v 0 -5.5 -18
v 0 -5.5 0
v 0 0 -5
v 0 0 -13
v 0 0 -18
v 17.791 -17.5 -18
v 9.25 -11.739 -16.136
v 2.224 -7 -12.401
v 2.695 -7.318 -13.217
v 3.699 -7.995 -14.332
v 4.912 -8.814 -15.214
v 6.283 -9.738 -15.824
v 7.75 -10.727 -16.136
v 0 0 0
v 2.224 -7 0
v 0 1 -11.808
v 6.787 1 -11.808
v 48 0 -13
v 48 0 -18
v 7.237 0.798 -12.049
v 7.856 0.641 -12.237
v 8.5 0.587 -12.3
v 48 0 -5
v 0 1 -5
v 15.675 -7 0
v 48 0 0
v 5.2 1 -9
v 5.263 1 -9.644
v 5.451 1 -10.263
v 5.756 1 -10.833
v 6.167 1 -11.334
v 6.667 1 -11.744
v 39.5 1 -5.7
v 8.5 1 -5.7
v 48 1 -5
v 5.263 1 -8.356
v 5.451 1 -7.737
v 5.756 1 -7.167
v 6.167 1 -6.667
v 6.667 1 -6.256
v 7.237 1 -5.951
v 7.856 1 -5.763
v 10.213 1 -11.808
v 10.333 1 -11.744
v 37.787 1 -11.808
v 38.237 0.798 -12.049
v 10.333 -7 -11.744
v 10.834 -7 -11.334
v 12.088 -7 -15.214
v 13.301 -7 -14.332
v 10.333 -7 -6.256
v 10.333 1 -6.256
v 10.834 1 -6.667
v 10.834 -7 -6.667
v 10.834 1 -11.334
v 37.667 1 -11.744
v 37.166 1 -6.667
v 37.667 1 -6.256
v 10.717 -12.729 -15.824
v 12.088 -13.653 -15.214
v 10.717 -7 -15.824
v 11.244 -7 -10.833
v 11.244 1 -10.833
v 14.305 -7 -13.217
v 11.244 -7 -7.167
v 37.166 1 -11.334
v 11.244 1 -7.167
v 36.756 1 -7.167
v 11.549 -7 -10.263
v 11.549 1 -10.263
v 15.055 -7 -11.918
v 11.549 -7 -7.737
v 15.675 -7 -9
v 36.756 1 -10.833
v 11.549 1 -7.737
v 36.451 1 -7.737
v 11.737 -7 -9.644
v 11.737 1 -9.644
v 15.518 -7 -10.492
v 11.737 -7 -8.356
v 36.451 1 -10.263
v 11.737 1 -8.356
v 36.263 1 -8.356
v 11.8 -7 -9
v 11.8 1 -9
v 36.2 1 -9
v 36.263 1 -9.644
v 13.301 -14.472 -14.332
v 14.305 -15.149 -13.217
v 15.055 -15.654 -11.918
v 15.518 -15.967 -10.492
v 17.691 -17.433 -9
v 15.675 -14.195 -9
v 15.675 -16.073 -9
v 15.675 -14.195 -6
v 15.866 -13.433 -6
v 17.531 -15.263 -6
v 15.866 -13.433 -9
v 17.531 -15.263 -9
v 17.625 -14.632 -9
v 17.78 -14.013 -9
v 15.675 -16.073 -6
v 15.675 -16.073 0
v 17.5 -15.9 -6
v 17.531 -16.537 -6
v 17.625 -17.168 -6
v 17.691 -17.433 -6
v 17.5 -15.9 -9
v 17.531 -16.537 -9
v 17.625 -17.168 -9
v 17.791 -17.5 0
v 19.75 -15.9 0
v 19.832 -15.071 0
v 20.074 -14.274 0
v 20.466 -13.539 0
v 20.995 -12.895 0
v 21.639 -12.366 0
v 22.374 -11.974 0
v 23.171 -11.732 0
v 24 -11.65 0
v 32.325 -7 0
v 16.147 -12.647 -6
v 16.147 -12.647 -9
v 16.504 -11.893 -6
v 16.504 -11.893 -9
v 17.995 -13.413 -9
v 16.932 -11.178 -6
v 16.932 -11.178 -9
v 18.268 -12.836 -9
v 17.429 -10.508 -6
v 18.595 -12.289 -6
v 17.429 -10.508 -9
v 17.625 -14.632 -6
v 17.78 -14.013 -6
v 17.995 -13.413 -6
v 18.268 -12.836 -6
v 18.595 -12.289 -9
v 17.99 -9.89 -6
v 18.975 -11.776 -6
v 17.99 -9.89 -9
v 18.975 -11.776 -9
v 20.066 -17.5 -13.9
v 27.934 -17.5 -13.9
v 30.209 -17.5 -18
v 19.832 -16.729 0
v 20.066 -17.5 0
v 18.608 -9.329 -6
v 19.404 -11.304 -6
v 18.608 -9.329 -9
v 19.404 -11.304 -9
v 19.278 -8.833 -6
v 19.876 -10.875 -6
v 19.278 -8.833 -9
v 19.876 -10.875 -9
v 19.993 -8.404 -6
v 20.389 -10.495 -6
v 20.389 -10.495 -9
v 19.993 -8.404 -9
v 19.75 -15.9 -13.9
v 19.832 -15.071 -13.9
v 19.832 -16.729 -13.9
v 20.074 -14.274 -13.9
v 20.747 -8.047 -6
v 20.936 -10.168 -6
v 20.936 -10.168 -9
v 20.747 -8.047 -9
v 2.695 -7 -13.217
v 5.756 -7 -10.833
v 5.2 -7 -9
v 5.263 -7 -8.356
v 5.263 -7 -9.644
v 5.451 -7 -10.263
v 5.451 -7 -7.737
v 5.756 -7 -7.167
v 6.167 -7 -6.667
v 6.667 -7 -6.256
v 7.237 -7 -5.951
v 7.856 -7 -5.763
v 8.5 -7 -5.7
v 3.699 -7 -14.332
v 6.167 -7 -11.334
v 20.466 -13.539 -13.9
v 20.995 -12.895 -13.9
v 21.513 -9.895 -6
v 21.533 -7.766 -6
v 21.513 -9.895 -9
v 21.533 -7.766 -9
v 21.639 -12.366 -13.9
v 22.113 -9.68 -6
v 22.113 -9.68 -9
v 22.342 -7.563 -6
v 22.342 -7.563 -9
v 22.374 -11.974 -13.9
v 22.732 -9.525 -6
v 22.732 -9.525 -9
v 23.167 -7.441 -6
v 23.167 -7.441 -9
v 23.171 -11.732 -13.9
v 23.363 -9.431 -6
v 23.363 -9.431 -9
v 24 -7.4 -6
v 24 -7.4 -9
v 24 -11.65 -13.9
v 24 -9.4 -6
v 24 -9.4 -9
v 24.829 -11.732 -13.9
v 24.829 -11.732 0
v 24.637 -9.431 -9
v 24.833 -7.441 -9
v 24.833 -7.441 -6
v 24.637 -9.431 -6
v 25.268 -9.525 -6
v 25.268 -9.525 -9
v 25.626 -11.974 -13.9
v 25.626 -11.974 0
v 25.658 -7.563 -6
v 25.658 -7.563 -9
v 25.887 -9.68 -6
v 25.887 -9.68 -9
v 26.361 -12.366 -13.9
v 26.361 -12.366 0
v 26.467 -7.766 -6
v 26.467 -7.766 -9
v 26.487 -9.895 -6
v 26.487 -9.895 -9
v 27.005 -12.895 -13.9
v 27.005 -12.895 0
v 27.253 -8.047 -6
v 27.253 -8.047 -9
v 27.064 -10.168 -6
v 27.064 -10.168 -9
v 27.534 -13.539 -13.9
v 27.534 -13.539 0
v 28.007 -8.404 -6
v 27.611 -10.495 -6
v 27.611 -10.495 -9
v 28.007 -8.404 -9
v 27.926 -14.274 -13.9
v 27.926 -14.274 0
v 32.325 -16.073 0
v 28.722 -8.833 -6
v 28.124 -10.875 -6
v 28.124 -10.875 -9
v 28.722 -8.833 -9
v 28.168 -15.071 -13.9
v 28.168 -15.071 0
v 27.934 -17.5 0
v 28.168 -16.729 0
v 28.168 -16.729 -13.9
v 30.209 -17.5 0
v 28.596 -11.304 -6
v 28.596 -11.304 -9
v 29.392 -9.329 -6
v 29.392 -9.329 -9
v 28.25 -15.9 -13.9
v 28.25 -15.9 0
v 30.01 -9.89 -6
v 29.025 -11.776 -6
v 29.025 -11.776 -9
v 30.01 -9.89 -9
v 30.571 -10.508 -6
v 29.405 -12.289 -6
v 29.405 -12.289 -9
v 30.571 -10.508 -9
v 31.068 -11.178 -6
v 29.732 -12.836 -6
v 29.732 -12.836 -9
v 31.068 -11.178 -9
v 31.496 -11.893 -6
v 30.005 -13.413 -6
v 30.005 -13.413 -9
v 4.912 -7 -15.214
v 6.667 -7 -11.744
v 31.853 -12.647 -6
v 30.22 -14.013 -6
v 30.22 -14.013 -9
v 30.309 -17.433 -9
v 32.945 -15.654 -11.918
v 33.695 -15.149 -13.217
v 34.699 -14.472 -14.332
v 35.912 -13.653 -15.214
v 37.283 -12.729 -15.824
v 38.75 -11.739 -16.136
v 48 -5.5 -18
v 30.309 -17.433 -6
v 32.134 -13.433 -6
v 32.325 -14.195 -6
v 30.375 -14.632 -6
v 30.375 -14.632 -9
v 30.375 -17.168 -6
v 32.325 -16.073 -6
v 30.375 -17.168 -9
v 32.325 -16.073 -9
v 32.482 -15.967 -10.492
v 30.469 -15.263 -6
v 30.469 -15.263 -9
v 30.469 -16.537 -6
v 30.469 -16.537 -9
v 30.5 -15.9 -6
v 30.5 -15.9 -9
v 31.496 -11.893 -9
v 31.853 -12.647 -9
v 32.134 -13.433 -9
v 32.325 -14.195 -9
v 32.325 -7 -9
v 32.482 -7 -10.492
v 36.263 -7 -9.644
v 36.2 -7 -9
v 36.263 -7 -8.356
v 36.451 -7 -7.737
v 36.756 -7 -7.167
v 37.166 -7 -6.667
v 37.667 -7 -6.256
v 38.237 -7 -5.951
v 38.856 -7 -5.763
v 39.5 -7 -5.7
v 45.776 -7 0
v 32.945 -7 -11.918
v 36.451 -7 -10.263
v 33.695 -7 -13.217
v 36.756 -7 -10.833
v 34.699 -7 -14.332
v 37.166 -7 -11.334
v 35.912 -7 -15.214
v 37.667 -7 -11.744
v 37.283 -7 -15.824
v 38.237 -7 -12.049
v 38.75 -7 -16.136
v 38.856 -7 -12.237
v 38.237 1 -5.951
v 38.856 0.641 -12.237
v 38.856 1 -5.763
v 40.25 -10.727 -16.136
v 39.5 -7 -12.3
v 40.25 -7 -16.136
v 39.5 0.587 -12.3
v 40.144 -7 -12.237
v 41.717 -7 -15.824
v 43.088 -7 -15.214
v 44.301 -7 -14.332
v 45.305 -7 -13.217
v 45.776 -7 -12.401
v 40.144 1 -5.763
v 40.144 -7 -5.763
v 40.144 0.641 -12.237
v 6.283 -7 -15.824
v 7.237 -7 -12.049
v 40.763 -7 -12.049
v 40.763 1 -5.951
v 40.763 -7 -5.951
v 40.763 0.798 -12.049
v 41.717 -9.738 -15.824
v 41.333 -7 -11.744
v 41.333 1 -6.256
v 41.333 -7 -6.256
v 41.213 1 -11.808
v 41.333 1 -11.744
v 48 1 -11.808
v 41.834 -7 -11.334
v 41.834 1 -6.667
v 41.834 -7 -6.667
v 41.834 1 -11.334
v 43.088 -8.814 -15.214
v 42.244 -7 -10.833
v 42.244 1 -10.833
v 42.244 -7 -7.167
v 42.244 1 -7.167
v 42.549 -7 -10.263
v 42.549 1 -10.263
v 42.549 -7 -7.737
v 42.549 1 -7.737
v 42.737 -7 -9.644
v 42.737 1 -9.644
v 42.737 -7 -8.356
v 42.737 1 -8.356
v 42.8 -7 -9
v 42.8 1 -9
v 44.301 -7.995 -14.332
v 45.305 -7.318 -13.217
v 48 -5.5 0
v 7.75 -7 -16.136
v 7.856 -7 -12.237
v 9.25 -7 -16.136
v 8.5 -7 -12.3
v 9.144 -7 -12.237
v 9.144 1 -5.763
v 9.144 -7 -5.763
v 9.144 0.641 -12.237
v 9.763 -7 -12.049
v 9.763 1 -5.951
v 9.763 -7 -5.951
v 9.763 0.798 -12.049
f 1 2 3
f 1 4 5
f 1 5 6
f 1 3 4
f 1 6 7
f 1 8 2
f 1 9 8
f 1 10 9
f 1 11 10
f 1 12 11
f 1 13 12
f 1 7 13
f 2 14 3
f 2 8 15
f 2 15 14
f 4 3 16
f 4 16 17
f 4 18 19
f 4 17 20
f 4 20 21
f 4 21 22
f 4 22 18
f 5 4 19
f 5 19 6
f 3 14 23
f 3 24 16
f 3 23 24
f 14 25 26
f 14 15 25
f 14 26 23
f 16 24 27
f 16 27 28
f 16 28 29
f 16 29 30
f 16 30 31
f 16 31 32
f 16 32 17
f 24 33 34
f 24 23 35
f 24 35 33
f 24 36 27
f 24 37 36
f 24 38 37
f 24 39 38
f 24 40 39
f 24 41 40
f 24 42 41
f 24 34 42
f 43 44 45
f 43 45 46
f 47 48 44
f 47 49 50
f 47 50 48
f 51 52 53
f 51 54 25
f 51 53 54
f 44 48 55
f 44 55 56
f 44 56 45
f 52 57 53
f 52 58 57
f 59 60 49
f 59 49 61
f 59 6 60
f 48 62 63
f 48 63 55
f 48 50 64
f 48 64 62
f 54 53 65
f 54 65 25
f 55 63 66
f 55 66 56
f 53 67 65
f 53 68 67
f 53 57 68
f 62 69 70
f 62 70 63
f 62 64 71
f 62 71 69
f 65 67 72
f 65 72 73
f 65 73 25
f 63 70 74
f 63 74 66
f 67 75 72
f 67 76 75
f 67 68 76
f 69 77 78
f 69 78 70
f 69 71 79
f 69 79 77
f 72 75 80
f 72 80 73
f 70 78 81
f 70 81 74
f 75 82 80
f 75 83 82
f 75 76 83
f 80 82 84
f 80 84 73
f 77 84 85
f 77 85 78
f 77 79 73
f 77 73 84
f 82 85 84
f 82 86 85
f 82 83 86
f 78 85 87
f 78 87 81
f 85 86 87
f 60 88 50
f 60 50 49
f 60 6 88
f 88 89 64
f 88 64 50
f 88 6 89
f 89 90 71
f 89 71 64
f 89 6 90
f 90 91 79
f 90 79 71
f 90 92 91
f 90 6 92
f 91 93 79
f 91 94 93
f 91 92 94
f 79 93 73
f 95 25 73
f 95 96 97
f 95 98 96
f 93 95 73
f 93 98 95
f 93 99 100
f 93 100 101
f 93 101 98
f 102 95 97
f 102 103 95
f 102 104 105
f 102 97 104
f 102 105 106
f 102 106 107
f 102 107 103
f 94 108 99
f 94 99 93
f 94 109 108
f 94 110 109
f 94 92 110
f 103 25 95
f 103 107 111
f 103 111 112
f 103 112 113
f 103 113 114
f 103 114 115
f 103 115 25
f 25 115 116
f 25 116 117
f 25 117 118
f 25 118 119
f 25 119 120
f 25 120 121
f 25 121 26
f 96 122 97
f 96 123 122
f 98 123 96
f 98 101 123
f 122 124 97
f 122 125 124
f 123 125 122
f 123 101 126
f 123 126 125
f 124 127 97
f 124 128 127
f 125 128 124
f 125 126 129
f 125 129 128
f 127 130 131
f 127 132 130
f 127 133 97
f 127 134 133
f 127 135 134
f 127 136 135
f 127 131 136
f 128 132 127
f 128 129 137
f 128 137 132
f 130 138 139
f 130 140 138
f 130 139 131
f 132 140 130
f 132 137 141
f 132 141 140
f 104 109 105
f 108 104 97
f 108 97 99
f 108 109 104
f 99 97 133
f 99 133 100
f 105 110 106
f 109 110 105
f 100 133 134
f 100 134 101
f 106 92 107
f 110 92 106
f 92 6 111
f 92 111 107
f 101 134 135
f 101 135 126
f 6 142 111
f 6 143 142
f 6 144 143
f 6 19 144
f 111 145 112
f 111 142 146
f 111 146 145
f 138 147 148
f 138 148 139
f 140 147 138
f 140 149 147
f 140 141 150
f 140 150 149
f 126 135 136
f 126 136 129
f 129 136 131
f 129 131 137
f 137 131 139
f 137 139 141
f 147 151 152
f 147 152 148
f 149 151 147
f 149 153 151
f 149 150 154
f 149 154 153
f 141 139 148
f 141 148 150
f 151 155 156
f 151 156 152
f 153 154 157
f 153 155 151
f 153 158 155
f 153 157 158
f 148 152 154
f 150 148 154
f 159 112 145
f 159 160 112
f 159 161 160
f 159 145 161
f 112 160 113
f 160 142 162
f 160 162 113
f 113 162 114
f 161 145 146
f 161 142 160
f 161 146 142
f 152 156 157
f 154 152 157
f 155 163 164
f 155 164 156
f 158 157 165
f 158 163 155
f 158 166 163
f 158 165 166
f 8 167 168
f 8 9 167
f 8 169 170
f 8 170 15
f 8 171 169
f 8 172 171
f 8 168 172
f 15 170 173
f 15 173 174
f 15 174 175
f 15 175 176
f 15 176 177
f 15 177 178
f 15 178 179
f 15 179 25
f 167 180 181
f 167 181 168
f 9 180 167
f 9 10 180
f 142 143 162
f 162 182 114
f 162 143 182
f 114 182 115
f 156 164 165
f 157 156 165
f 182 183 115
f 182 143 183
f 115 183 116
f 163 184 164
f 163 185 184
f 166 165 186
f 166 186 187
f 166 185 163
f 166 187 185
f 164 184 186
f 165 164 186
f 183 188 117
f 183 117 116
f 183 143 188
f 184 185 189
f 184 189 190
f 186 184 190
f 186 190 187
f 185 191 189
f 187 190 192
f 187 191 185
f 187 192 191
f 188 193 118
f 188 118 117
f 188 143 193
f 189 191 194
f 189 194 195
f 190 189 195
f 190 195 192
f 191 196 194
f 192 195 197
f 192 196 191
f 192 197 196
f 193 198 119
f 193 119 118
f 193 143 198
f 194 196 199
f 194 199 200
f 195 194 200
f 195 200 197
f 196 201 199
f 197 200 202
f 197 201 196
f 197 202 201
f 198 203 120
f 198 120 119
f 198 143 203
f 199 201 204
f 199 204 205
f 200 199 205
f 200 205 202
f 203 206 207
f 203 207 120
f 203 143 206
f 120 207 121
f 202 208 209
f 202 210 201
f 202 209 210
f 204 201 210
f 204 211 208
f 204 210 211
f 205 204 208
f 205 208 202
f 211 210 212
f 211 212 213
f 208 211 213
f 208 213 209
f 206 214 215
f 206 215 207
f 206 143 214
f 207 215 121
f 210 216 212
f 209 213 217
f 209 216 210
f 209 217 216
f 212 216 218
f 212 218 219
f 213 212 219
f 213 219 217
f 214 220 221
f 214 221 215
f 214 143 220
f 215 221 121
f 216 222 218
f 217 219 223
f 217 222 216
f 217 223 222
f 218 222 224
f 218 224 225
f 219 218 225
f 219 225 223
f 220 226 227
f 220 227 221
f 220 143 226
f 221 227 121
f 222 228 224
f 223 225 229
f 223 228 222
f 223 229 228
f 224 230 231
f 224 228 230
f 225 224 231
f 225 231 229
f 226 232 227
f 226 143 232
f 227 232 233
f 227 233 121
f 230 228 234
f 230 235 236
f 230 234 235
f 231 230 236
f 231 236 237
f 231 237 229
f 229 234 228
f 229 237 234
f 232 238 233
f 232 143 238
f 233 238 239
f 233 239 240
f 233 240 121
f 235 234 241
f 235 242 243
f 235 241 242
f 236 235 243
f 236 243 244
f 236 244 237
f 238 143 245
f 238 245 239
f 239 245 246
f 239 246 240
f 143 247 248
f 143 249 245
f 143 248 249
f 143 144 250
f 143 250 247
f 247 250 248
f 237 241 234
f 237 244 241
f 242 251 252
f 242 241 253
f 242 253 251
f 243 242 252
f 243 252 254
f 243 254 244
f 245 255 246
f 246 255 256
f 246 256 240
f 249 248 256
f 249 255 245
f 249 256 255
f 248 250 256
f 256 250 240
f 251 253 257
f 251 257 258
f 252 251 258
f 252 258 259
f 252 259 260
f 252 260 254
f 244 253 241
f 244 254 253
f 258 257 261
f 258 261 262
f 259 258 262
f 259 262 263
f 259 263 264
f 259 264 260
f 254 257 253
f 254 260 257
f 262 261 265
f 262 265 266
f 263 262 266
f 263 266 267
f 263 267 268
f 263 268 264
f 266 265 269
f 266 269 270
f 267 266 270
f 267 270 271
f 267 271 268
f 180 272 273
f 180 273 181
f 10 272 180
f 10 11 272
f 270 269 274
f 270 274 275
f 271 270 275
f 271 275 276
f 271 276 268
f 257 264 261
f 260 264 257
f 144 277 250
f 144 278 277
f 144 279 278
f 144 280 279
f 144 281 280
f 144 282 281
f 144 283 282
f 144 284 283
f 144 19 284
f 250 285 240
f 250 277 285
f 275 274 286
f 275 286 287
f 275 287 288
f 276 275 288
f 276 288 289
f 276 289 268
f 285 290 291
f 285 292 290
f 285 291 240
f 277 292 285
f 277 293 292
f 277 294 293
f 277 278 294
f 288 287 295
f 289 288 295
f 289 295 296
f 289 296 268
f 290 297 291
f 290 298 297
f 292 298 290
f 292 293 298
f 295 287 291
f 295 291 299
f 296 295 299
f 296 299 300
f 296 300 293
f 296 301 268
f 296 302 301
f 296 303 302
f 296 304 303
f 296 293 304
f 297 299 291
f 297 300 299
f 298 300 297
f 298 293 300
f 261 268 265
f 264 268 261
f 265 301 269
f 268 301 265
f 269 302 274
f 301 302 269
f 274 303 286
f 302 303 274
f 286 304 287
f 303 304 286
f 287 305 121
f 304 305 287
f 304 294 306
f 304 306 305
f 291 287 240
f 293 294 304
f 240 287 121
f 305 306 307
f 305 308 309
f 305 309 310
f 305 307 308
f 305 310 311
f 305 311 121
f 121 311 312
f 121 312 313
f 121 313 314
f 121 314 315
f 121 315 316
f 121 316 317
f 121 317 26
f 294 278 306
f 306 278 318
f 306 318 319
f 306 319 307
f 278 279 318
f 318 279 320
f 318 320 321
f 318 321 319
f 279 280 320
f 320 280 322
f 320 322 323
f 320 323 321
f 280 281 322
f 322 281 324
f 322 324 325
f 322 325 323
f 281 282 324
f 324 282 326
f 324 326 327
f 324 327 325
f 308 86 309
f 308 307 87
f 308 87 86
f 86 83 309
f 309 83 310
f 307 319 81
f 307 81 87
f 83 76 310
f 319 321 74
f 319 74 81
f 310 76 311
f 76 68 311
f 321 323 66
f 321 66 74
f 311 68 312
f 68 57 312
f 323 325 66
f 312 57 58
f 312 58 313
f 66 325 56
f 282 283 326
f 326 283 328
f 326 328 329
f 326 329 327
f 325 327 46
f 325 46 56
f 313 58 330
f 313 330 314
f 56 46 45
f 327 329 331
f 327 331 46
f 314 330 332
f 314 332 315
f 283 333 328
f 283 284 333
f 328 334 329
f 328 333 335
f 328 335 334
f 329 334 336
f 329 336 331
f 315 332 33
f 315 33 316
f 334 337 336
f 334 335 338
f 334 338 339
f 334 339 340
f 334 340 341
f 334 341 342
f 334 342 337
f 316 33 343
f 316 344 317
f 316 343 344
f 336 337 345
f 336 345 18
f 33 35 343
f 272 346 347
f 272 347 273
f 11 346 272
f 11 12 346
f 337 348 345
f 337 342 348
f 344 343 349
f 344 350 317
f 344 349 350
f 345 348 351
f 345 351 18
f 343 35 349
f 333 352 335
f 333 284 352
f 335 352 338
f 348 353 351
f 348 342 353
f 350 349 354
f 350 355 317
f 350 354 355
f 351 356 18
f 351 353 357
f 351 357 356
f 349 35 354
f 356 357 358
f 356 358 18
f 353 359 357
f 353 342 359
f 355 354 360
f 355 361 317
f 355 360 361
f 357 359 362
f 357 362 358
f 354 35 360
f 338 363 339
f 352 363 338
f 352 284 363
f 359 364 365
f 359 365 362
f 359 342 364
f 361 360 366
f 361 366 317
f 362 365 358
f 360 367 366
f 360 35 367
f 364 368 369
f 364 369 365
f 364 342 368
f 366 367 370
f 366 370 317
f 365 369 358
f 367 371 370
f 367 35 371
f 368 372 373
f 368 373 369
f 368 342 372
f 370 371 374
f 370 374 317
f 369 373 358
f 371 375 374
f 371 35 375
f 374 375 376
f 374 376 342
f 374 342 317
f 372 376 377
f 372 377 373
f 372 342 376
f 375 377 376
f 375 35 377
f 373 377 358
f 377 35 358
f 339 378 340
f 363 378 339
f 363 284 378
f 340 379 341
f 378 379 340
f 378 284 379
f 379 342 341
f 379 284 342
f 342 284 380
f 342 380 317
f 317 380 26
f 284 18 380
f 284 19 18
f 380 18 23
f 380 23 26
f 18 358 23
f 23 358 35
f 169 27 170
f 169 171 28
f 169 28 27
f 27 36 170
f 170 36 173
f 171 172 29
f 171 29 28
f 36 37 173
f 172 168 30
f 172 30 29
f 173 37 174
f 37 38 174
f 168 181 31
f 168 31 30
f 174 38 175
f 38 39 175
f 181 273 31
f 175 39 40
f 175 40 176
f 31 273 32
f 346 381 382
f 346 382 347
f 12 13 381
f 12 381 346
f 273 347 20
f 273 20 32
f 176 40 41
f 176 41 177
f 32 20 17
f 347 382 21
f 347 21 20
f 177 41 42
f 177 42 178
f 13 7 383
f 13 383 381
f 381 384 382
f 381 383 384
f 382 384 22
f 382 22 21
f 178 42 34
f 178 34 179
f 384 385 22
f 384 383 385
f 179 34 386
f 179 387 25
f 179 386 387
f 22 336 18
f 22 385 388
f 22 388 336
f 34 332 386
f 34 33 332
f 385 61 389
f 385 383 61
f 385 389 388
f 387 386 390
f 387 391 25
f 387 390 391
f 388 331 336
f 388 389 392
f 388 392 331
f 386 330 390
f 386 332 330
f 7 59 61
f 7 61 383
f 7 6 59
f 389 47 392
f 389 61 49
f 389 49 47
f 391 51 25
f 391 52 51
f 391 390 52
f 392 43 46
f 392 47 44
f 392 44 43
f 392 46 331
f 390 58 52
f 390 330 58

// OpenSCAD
// file: ../configuration.scad
// Layer high for the printing [mm]
layer_height = 0.20; //Slic3r->Print Settings->Layers and perimeters->Layer height

// Spare for the screws heads [mm]
spare = 0.75;
// M6 screw diameter [mm]
M6_head_diameter = 13.6+spare;
//M6_head_diameter = 10.6+spare;
//M6_head_diameter = 12+spare;

// M6 head high (for hiding it) [mm]
//M6_head_height = 4;
M6_head_height = 3.6;
//M6_head_height = 4.5;

// Screws and rods diameters
M8_smooth_rod_diameter = 8.3;
M8_smooth_rod_diameter_catch = 8.4;
// Prumer 8mm tyce
rod_8mm_d = 8.2; //pro dil z-top
M6_diameter = 6.6;
M6_dia=M6_diameter; //pro dil z-top
M6_diamater_horizontal = 6.5;
M3_diameter = 3.7;
M3_diameter_horizontal = 3.5;

//matice trapézové tyče
TRAP_diameter_externa=22; //průmer vnější 


// Nuts diameters
M3_nut_diameter = 7.0;
M3_nut_diameter_horizontal = 6.7;

// ALU profile parameters
ALU_cut_width = 7.9;
ALU_cut_width_horizontal = 7.7;

// Sirka matky do profilu (pokud neni pouzita, tak 0)
//profile_nut_width = 9.5;
profile_nut_width = 0; //pro z-top

// Motors length/depth (for axes Z and Y)
//SX17-1003LQFE (recommended for the Z axis)
motor_length = 29.5;
//SX17-1003 (recommended for the Z axis)
//motor_length = 34;
//SX17-1005
//motor_length = 40;
//SX17-0905 - this motor is too high - the Z end stop holder has to be adjusted
//motor_length = 48;

// Extrusion width [mm]
extrusion_width = 0.66; //Slic3r->Print Settings->Advanced->Default extrusion width

/// Belt type ******************************************************

// GT2 
/*belt_tooth_distance = 2;
belt_tooth_ratio = 0.5;
belt_tooth_height = 1.4;
belt_thickness = 2.3;
*/

// T2.5
belt_tooth_distance = 2.5;
belt_tooth_ratio = 0.5;


// Tloustka rohovych spojek
// 5 mm => sroub M6x14 s podlozkou
// 3 mm => sroub M6x12 s podlozkou
coupler_thickness = 3;
// main file
// RebeliX
//
// y rod holder
// GNU GPL v3
// Martin Neruda <neruda@reprap4u.cz>
// http://www.reprap4u.cz

include <../configuration.scad>

width = 48;
height = 18;
base_thickness = 7;
thickness = 17.5;
rod_diameter = M8_smooth_rod_diameter;

 
    
    
module y_rod_holder_base(){
  cube([width,thickness,height]);
  translate([width/2,0,height/2]) cube([width,2,8],center=true);
}

module y_cuts(){
  // Vyrez pro 8mm tyc
  translate([width/2,thickness - 1.6,-0.1]) cylinder(h=(height/2)+5,r=(rod_diameter/2)+0.1,$fn = 32);
  // Zkosene hrany
  translate([0,base_thickness-1.5,-0.1]) rotate([0,0,34]) cube([30,10,20]);
  translate([width,base_thickness-1.5,-0.1]) rotate([0,0,56]) cube([10,30,20]);
  // Otvory pro M6 srouby
  translate([8.5,0,height/2]) rotate([-90,0,0]) cylinder(h=40,r=M6_dia/2,$fn = 32,center=true);
  translate([width-8.5,0,height/2]) rotate([-90,0,0]) cylinder(h=40,r=M6_dia/2,$fn = 32,center=true);
  
  translate([8.5,base_thickness,height/2]) rotate([-90,0,0]) cylinder(r = M6_head_diameter/2, h = 20, $fn = 30);
  translate([width-8.5,base_thickness,height/2]) rotate([-90,0,0]) cylinder(r = M6_head_diameter/2, h = 20, $fn = 30);
 
  translate([width-8.5-M6_head_diameter/2,base_thickness,0]) cube([M6_head_diameter,10,height/2]);
  translate([8.5-M6_head_diameter/2,base_thickness,0]) cube([M6_head_diameter,10,height/2]);
  
  // Otvor pro zip pasku
  translate([width/2,thickness - 1.6,height/2 - 3]) difference(){
    cylinder(r=8.5,h=3,$fn=64);
    cylinder(r=6.5,h=3.1,$fn=64);
  }
  
  // Vyrez pro profilovou matku 
  translate([8.5,-3,height/2]) cube([profile_nut_width,6,10],center=true);
  translate([width-8.5,-3,height/2]) cube([profile_nut_width,6,10],center=true);
  
 // Seriznuti pro snazsi tisk
 translate([0,0,height/2 + 8/2]) rotate([180 - 40,0,0]) cube([width,2,8]);
}

rotate([180,0,0]) 
difference(){
	y_rod_holder_base();
	y_cuts();
}	    
